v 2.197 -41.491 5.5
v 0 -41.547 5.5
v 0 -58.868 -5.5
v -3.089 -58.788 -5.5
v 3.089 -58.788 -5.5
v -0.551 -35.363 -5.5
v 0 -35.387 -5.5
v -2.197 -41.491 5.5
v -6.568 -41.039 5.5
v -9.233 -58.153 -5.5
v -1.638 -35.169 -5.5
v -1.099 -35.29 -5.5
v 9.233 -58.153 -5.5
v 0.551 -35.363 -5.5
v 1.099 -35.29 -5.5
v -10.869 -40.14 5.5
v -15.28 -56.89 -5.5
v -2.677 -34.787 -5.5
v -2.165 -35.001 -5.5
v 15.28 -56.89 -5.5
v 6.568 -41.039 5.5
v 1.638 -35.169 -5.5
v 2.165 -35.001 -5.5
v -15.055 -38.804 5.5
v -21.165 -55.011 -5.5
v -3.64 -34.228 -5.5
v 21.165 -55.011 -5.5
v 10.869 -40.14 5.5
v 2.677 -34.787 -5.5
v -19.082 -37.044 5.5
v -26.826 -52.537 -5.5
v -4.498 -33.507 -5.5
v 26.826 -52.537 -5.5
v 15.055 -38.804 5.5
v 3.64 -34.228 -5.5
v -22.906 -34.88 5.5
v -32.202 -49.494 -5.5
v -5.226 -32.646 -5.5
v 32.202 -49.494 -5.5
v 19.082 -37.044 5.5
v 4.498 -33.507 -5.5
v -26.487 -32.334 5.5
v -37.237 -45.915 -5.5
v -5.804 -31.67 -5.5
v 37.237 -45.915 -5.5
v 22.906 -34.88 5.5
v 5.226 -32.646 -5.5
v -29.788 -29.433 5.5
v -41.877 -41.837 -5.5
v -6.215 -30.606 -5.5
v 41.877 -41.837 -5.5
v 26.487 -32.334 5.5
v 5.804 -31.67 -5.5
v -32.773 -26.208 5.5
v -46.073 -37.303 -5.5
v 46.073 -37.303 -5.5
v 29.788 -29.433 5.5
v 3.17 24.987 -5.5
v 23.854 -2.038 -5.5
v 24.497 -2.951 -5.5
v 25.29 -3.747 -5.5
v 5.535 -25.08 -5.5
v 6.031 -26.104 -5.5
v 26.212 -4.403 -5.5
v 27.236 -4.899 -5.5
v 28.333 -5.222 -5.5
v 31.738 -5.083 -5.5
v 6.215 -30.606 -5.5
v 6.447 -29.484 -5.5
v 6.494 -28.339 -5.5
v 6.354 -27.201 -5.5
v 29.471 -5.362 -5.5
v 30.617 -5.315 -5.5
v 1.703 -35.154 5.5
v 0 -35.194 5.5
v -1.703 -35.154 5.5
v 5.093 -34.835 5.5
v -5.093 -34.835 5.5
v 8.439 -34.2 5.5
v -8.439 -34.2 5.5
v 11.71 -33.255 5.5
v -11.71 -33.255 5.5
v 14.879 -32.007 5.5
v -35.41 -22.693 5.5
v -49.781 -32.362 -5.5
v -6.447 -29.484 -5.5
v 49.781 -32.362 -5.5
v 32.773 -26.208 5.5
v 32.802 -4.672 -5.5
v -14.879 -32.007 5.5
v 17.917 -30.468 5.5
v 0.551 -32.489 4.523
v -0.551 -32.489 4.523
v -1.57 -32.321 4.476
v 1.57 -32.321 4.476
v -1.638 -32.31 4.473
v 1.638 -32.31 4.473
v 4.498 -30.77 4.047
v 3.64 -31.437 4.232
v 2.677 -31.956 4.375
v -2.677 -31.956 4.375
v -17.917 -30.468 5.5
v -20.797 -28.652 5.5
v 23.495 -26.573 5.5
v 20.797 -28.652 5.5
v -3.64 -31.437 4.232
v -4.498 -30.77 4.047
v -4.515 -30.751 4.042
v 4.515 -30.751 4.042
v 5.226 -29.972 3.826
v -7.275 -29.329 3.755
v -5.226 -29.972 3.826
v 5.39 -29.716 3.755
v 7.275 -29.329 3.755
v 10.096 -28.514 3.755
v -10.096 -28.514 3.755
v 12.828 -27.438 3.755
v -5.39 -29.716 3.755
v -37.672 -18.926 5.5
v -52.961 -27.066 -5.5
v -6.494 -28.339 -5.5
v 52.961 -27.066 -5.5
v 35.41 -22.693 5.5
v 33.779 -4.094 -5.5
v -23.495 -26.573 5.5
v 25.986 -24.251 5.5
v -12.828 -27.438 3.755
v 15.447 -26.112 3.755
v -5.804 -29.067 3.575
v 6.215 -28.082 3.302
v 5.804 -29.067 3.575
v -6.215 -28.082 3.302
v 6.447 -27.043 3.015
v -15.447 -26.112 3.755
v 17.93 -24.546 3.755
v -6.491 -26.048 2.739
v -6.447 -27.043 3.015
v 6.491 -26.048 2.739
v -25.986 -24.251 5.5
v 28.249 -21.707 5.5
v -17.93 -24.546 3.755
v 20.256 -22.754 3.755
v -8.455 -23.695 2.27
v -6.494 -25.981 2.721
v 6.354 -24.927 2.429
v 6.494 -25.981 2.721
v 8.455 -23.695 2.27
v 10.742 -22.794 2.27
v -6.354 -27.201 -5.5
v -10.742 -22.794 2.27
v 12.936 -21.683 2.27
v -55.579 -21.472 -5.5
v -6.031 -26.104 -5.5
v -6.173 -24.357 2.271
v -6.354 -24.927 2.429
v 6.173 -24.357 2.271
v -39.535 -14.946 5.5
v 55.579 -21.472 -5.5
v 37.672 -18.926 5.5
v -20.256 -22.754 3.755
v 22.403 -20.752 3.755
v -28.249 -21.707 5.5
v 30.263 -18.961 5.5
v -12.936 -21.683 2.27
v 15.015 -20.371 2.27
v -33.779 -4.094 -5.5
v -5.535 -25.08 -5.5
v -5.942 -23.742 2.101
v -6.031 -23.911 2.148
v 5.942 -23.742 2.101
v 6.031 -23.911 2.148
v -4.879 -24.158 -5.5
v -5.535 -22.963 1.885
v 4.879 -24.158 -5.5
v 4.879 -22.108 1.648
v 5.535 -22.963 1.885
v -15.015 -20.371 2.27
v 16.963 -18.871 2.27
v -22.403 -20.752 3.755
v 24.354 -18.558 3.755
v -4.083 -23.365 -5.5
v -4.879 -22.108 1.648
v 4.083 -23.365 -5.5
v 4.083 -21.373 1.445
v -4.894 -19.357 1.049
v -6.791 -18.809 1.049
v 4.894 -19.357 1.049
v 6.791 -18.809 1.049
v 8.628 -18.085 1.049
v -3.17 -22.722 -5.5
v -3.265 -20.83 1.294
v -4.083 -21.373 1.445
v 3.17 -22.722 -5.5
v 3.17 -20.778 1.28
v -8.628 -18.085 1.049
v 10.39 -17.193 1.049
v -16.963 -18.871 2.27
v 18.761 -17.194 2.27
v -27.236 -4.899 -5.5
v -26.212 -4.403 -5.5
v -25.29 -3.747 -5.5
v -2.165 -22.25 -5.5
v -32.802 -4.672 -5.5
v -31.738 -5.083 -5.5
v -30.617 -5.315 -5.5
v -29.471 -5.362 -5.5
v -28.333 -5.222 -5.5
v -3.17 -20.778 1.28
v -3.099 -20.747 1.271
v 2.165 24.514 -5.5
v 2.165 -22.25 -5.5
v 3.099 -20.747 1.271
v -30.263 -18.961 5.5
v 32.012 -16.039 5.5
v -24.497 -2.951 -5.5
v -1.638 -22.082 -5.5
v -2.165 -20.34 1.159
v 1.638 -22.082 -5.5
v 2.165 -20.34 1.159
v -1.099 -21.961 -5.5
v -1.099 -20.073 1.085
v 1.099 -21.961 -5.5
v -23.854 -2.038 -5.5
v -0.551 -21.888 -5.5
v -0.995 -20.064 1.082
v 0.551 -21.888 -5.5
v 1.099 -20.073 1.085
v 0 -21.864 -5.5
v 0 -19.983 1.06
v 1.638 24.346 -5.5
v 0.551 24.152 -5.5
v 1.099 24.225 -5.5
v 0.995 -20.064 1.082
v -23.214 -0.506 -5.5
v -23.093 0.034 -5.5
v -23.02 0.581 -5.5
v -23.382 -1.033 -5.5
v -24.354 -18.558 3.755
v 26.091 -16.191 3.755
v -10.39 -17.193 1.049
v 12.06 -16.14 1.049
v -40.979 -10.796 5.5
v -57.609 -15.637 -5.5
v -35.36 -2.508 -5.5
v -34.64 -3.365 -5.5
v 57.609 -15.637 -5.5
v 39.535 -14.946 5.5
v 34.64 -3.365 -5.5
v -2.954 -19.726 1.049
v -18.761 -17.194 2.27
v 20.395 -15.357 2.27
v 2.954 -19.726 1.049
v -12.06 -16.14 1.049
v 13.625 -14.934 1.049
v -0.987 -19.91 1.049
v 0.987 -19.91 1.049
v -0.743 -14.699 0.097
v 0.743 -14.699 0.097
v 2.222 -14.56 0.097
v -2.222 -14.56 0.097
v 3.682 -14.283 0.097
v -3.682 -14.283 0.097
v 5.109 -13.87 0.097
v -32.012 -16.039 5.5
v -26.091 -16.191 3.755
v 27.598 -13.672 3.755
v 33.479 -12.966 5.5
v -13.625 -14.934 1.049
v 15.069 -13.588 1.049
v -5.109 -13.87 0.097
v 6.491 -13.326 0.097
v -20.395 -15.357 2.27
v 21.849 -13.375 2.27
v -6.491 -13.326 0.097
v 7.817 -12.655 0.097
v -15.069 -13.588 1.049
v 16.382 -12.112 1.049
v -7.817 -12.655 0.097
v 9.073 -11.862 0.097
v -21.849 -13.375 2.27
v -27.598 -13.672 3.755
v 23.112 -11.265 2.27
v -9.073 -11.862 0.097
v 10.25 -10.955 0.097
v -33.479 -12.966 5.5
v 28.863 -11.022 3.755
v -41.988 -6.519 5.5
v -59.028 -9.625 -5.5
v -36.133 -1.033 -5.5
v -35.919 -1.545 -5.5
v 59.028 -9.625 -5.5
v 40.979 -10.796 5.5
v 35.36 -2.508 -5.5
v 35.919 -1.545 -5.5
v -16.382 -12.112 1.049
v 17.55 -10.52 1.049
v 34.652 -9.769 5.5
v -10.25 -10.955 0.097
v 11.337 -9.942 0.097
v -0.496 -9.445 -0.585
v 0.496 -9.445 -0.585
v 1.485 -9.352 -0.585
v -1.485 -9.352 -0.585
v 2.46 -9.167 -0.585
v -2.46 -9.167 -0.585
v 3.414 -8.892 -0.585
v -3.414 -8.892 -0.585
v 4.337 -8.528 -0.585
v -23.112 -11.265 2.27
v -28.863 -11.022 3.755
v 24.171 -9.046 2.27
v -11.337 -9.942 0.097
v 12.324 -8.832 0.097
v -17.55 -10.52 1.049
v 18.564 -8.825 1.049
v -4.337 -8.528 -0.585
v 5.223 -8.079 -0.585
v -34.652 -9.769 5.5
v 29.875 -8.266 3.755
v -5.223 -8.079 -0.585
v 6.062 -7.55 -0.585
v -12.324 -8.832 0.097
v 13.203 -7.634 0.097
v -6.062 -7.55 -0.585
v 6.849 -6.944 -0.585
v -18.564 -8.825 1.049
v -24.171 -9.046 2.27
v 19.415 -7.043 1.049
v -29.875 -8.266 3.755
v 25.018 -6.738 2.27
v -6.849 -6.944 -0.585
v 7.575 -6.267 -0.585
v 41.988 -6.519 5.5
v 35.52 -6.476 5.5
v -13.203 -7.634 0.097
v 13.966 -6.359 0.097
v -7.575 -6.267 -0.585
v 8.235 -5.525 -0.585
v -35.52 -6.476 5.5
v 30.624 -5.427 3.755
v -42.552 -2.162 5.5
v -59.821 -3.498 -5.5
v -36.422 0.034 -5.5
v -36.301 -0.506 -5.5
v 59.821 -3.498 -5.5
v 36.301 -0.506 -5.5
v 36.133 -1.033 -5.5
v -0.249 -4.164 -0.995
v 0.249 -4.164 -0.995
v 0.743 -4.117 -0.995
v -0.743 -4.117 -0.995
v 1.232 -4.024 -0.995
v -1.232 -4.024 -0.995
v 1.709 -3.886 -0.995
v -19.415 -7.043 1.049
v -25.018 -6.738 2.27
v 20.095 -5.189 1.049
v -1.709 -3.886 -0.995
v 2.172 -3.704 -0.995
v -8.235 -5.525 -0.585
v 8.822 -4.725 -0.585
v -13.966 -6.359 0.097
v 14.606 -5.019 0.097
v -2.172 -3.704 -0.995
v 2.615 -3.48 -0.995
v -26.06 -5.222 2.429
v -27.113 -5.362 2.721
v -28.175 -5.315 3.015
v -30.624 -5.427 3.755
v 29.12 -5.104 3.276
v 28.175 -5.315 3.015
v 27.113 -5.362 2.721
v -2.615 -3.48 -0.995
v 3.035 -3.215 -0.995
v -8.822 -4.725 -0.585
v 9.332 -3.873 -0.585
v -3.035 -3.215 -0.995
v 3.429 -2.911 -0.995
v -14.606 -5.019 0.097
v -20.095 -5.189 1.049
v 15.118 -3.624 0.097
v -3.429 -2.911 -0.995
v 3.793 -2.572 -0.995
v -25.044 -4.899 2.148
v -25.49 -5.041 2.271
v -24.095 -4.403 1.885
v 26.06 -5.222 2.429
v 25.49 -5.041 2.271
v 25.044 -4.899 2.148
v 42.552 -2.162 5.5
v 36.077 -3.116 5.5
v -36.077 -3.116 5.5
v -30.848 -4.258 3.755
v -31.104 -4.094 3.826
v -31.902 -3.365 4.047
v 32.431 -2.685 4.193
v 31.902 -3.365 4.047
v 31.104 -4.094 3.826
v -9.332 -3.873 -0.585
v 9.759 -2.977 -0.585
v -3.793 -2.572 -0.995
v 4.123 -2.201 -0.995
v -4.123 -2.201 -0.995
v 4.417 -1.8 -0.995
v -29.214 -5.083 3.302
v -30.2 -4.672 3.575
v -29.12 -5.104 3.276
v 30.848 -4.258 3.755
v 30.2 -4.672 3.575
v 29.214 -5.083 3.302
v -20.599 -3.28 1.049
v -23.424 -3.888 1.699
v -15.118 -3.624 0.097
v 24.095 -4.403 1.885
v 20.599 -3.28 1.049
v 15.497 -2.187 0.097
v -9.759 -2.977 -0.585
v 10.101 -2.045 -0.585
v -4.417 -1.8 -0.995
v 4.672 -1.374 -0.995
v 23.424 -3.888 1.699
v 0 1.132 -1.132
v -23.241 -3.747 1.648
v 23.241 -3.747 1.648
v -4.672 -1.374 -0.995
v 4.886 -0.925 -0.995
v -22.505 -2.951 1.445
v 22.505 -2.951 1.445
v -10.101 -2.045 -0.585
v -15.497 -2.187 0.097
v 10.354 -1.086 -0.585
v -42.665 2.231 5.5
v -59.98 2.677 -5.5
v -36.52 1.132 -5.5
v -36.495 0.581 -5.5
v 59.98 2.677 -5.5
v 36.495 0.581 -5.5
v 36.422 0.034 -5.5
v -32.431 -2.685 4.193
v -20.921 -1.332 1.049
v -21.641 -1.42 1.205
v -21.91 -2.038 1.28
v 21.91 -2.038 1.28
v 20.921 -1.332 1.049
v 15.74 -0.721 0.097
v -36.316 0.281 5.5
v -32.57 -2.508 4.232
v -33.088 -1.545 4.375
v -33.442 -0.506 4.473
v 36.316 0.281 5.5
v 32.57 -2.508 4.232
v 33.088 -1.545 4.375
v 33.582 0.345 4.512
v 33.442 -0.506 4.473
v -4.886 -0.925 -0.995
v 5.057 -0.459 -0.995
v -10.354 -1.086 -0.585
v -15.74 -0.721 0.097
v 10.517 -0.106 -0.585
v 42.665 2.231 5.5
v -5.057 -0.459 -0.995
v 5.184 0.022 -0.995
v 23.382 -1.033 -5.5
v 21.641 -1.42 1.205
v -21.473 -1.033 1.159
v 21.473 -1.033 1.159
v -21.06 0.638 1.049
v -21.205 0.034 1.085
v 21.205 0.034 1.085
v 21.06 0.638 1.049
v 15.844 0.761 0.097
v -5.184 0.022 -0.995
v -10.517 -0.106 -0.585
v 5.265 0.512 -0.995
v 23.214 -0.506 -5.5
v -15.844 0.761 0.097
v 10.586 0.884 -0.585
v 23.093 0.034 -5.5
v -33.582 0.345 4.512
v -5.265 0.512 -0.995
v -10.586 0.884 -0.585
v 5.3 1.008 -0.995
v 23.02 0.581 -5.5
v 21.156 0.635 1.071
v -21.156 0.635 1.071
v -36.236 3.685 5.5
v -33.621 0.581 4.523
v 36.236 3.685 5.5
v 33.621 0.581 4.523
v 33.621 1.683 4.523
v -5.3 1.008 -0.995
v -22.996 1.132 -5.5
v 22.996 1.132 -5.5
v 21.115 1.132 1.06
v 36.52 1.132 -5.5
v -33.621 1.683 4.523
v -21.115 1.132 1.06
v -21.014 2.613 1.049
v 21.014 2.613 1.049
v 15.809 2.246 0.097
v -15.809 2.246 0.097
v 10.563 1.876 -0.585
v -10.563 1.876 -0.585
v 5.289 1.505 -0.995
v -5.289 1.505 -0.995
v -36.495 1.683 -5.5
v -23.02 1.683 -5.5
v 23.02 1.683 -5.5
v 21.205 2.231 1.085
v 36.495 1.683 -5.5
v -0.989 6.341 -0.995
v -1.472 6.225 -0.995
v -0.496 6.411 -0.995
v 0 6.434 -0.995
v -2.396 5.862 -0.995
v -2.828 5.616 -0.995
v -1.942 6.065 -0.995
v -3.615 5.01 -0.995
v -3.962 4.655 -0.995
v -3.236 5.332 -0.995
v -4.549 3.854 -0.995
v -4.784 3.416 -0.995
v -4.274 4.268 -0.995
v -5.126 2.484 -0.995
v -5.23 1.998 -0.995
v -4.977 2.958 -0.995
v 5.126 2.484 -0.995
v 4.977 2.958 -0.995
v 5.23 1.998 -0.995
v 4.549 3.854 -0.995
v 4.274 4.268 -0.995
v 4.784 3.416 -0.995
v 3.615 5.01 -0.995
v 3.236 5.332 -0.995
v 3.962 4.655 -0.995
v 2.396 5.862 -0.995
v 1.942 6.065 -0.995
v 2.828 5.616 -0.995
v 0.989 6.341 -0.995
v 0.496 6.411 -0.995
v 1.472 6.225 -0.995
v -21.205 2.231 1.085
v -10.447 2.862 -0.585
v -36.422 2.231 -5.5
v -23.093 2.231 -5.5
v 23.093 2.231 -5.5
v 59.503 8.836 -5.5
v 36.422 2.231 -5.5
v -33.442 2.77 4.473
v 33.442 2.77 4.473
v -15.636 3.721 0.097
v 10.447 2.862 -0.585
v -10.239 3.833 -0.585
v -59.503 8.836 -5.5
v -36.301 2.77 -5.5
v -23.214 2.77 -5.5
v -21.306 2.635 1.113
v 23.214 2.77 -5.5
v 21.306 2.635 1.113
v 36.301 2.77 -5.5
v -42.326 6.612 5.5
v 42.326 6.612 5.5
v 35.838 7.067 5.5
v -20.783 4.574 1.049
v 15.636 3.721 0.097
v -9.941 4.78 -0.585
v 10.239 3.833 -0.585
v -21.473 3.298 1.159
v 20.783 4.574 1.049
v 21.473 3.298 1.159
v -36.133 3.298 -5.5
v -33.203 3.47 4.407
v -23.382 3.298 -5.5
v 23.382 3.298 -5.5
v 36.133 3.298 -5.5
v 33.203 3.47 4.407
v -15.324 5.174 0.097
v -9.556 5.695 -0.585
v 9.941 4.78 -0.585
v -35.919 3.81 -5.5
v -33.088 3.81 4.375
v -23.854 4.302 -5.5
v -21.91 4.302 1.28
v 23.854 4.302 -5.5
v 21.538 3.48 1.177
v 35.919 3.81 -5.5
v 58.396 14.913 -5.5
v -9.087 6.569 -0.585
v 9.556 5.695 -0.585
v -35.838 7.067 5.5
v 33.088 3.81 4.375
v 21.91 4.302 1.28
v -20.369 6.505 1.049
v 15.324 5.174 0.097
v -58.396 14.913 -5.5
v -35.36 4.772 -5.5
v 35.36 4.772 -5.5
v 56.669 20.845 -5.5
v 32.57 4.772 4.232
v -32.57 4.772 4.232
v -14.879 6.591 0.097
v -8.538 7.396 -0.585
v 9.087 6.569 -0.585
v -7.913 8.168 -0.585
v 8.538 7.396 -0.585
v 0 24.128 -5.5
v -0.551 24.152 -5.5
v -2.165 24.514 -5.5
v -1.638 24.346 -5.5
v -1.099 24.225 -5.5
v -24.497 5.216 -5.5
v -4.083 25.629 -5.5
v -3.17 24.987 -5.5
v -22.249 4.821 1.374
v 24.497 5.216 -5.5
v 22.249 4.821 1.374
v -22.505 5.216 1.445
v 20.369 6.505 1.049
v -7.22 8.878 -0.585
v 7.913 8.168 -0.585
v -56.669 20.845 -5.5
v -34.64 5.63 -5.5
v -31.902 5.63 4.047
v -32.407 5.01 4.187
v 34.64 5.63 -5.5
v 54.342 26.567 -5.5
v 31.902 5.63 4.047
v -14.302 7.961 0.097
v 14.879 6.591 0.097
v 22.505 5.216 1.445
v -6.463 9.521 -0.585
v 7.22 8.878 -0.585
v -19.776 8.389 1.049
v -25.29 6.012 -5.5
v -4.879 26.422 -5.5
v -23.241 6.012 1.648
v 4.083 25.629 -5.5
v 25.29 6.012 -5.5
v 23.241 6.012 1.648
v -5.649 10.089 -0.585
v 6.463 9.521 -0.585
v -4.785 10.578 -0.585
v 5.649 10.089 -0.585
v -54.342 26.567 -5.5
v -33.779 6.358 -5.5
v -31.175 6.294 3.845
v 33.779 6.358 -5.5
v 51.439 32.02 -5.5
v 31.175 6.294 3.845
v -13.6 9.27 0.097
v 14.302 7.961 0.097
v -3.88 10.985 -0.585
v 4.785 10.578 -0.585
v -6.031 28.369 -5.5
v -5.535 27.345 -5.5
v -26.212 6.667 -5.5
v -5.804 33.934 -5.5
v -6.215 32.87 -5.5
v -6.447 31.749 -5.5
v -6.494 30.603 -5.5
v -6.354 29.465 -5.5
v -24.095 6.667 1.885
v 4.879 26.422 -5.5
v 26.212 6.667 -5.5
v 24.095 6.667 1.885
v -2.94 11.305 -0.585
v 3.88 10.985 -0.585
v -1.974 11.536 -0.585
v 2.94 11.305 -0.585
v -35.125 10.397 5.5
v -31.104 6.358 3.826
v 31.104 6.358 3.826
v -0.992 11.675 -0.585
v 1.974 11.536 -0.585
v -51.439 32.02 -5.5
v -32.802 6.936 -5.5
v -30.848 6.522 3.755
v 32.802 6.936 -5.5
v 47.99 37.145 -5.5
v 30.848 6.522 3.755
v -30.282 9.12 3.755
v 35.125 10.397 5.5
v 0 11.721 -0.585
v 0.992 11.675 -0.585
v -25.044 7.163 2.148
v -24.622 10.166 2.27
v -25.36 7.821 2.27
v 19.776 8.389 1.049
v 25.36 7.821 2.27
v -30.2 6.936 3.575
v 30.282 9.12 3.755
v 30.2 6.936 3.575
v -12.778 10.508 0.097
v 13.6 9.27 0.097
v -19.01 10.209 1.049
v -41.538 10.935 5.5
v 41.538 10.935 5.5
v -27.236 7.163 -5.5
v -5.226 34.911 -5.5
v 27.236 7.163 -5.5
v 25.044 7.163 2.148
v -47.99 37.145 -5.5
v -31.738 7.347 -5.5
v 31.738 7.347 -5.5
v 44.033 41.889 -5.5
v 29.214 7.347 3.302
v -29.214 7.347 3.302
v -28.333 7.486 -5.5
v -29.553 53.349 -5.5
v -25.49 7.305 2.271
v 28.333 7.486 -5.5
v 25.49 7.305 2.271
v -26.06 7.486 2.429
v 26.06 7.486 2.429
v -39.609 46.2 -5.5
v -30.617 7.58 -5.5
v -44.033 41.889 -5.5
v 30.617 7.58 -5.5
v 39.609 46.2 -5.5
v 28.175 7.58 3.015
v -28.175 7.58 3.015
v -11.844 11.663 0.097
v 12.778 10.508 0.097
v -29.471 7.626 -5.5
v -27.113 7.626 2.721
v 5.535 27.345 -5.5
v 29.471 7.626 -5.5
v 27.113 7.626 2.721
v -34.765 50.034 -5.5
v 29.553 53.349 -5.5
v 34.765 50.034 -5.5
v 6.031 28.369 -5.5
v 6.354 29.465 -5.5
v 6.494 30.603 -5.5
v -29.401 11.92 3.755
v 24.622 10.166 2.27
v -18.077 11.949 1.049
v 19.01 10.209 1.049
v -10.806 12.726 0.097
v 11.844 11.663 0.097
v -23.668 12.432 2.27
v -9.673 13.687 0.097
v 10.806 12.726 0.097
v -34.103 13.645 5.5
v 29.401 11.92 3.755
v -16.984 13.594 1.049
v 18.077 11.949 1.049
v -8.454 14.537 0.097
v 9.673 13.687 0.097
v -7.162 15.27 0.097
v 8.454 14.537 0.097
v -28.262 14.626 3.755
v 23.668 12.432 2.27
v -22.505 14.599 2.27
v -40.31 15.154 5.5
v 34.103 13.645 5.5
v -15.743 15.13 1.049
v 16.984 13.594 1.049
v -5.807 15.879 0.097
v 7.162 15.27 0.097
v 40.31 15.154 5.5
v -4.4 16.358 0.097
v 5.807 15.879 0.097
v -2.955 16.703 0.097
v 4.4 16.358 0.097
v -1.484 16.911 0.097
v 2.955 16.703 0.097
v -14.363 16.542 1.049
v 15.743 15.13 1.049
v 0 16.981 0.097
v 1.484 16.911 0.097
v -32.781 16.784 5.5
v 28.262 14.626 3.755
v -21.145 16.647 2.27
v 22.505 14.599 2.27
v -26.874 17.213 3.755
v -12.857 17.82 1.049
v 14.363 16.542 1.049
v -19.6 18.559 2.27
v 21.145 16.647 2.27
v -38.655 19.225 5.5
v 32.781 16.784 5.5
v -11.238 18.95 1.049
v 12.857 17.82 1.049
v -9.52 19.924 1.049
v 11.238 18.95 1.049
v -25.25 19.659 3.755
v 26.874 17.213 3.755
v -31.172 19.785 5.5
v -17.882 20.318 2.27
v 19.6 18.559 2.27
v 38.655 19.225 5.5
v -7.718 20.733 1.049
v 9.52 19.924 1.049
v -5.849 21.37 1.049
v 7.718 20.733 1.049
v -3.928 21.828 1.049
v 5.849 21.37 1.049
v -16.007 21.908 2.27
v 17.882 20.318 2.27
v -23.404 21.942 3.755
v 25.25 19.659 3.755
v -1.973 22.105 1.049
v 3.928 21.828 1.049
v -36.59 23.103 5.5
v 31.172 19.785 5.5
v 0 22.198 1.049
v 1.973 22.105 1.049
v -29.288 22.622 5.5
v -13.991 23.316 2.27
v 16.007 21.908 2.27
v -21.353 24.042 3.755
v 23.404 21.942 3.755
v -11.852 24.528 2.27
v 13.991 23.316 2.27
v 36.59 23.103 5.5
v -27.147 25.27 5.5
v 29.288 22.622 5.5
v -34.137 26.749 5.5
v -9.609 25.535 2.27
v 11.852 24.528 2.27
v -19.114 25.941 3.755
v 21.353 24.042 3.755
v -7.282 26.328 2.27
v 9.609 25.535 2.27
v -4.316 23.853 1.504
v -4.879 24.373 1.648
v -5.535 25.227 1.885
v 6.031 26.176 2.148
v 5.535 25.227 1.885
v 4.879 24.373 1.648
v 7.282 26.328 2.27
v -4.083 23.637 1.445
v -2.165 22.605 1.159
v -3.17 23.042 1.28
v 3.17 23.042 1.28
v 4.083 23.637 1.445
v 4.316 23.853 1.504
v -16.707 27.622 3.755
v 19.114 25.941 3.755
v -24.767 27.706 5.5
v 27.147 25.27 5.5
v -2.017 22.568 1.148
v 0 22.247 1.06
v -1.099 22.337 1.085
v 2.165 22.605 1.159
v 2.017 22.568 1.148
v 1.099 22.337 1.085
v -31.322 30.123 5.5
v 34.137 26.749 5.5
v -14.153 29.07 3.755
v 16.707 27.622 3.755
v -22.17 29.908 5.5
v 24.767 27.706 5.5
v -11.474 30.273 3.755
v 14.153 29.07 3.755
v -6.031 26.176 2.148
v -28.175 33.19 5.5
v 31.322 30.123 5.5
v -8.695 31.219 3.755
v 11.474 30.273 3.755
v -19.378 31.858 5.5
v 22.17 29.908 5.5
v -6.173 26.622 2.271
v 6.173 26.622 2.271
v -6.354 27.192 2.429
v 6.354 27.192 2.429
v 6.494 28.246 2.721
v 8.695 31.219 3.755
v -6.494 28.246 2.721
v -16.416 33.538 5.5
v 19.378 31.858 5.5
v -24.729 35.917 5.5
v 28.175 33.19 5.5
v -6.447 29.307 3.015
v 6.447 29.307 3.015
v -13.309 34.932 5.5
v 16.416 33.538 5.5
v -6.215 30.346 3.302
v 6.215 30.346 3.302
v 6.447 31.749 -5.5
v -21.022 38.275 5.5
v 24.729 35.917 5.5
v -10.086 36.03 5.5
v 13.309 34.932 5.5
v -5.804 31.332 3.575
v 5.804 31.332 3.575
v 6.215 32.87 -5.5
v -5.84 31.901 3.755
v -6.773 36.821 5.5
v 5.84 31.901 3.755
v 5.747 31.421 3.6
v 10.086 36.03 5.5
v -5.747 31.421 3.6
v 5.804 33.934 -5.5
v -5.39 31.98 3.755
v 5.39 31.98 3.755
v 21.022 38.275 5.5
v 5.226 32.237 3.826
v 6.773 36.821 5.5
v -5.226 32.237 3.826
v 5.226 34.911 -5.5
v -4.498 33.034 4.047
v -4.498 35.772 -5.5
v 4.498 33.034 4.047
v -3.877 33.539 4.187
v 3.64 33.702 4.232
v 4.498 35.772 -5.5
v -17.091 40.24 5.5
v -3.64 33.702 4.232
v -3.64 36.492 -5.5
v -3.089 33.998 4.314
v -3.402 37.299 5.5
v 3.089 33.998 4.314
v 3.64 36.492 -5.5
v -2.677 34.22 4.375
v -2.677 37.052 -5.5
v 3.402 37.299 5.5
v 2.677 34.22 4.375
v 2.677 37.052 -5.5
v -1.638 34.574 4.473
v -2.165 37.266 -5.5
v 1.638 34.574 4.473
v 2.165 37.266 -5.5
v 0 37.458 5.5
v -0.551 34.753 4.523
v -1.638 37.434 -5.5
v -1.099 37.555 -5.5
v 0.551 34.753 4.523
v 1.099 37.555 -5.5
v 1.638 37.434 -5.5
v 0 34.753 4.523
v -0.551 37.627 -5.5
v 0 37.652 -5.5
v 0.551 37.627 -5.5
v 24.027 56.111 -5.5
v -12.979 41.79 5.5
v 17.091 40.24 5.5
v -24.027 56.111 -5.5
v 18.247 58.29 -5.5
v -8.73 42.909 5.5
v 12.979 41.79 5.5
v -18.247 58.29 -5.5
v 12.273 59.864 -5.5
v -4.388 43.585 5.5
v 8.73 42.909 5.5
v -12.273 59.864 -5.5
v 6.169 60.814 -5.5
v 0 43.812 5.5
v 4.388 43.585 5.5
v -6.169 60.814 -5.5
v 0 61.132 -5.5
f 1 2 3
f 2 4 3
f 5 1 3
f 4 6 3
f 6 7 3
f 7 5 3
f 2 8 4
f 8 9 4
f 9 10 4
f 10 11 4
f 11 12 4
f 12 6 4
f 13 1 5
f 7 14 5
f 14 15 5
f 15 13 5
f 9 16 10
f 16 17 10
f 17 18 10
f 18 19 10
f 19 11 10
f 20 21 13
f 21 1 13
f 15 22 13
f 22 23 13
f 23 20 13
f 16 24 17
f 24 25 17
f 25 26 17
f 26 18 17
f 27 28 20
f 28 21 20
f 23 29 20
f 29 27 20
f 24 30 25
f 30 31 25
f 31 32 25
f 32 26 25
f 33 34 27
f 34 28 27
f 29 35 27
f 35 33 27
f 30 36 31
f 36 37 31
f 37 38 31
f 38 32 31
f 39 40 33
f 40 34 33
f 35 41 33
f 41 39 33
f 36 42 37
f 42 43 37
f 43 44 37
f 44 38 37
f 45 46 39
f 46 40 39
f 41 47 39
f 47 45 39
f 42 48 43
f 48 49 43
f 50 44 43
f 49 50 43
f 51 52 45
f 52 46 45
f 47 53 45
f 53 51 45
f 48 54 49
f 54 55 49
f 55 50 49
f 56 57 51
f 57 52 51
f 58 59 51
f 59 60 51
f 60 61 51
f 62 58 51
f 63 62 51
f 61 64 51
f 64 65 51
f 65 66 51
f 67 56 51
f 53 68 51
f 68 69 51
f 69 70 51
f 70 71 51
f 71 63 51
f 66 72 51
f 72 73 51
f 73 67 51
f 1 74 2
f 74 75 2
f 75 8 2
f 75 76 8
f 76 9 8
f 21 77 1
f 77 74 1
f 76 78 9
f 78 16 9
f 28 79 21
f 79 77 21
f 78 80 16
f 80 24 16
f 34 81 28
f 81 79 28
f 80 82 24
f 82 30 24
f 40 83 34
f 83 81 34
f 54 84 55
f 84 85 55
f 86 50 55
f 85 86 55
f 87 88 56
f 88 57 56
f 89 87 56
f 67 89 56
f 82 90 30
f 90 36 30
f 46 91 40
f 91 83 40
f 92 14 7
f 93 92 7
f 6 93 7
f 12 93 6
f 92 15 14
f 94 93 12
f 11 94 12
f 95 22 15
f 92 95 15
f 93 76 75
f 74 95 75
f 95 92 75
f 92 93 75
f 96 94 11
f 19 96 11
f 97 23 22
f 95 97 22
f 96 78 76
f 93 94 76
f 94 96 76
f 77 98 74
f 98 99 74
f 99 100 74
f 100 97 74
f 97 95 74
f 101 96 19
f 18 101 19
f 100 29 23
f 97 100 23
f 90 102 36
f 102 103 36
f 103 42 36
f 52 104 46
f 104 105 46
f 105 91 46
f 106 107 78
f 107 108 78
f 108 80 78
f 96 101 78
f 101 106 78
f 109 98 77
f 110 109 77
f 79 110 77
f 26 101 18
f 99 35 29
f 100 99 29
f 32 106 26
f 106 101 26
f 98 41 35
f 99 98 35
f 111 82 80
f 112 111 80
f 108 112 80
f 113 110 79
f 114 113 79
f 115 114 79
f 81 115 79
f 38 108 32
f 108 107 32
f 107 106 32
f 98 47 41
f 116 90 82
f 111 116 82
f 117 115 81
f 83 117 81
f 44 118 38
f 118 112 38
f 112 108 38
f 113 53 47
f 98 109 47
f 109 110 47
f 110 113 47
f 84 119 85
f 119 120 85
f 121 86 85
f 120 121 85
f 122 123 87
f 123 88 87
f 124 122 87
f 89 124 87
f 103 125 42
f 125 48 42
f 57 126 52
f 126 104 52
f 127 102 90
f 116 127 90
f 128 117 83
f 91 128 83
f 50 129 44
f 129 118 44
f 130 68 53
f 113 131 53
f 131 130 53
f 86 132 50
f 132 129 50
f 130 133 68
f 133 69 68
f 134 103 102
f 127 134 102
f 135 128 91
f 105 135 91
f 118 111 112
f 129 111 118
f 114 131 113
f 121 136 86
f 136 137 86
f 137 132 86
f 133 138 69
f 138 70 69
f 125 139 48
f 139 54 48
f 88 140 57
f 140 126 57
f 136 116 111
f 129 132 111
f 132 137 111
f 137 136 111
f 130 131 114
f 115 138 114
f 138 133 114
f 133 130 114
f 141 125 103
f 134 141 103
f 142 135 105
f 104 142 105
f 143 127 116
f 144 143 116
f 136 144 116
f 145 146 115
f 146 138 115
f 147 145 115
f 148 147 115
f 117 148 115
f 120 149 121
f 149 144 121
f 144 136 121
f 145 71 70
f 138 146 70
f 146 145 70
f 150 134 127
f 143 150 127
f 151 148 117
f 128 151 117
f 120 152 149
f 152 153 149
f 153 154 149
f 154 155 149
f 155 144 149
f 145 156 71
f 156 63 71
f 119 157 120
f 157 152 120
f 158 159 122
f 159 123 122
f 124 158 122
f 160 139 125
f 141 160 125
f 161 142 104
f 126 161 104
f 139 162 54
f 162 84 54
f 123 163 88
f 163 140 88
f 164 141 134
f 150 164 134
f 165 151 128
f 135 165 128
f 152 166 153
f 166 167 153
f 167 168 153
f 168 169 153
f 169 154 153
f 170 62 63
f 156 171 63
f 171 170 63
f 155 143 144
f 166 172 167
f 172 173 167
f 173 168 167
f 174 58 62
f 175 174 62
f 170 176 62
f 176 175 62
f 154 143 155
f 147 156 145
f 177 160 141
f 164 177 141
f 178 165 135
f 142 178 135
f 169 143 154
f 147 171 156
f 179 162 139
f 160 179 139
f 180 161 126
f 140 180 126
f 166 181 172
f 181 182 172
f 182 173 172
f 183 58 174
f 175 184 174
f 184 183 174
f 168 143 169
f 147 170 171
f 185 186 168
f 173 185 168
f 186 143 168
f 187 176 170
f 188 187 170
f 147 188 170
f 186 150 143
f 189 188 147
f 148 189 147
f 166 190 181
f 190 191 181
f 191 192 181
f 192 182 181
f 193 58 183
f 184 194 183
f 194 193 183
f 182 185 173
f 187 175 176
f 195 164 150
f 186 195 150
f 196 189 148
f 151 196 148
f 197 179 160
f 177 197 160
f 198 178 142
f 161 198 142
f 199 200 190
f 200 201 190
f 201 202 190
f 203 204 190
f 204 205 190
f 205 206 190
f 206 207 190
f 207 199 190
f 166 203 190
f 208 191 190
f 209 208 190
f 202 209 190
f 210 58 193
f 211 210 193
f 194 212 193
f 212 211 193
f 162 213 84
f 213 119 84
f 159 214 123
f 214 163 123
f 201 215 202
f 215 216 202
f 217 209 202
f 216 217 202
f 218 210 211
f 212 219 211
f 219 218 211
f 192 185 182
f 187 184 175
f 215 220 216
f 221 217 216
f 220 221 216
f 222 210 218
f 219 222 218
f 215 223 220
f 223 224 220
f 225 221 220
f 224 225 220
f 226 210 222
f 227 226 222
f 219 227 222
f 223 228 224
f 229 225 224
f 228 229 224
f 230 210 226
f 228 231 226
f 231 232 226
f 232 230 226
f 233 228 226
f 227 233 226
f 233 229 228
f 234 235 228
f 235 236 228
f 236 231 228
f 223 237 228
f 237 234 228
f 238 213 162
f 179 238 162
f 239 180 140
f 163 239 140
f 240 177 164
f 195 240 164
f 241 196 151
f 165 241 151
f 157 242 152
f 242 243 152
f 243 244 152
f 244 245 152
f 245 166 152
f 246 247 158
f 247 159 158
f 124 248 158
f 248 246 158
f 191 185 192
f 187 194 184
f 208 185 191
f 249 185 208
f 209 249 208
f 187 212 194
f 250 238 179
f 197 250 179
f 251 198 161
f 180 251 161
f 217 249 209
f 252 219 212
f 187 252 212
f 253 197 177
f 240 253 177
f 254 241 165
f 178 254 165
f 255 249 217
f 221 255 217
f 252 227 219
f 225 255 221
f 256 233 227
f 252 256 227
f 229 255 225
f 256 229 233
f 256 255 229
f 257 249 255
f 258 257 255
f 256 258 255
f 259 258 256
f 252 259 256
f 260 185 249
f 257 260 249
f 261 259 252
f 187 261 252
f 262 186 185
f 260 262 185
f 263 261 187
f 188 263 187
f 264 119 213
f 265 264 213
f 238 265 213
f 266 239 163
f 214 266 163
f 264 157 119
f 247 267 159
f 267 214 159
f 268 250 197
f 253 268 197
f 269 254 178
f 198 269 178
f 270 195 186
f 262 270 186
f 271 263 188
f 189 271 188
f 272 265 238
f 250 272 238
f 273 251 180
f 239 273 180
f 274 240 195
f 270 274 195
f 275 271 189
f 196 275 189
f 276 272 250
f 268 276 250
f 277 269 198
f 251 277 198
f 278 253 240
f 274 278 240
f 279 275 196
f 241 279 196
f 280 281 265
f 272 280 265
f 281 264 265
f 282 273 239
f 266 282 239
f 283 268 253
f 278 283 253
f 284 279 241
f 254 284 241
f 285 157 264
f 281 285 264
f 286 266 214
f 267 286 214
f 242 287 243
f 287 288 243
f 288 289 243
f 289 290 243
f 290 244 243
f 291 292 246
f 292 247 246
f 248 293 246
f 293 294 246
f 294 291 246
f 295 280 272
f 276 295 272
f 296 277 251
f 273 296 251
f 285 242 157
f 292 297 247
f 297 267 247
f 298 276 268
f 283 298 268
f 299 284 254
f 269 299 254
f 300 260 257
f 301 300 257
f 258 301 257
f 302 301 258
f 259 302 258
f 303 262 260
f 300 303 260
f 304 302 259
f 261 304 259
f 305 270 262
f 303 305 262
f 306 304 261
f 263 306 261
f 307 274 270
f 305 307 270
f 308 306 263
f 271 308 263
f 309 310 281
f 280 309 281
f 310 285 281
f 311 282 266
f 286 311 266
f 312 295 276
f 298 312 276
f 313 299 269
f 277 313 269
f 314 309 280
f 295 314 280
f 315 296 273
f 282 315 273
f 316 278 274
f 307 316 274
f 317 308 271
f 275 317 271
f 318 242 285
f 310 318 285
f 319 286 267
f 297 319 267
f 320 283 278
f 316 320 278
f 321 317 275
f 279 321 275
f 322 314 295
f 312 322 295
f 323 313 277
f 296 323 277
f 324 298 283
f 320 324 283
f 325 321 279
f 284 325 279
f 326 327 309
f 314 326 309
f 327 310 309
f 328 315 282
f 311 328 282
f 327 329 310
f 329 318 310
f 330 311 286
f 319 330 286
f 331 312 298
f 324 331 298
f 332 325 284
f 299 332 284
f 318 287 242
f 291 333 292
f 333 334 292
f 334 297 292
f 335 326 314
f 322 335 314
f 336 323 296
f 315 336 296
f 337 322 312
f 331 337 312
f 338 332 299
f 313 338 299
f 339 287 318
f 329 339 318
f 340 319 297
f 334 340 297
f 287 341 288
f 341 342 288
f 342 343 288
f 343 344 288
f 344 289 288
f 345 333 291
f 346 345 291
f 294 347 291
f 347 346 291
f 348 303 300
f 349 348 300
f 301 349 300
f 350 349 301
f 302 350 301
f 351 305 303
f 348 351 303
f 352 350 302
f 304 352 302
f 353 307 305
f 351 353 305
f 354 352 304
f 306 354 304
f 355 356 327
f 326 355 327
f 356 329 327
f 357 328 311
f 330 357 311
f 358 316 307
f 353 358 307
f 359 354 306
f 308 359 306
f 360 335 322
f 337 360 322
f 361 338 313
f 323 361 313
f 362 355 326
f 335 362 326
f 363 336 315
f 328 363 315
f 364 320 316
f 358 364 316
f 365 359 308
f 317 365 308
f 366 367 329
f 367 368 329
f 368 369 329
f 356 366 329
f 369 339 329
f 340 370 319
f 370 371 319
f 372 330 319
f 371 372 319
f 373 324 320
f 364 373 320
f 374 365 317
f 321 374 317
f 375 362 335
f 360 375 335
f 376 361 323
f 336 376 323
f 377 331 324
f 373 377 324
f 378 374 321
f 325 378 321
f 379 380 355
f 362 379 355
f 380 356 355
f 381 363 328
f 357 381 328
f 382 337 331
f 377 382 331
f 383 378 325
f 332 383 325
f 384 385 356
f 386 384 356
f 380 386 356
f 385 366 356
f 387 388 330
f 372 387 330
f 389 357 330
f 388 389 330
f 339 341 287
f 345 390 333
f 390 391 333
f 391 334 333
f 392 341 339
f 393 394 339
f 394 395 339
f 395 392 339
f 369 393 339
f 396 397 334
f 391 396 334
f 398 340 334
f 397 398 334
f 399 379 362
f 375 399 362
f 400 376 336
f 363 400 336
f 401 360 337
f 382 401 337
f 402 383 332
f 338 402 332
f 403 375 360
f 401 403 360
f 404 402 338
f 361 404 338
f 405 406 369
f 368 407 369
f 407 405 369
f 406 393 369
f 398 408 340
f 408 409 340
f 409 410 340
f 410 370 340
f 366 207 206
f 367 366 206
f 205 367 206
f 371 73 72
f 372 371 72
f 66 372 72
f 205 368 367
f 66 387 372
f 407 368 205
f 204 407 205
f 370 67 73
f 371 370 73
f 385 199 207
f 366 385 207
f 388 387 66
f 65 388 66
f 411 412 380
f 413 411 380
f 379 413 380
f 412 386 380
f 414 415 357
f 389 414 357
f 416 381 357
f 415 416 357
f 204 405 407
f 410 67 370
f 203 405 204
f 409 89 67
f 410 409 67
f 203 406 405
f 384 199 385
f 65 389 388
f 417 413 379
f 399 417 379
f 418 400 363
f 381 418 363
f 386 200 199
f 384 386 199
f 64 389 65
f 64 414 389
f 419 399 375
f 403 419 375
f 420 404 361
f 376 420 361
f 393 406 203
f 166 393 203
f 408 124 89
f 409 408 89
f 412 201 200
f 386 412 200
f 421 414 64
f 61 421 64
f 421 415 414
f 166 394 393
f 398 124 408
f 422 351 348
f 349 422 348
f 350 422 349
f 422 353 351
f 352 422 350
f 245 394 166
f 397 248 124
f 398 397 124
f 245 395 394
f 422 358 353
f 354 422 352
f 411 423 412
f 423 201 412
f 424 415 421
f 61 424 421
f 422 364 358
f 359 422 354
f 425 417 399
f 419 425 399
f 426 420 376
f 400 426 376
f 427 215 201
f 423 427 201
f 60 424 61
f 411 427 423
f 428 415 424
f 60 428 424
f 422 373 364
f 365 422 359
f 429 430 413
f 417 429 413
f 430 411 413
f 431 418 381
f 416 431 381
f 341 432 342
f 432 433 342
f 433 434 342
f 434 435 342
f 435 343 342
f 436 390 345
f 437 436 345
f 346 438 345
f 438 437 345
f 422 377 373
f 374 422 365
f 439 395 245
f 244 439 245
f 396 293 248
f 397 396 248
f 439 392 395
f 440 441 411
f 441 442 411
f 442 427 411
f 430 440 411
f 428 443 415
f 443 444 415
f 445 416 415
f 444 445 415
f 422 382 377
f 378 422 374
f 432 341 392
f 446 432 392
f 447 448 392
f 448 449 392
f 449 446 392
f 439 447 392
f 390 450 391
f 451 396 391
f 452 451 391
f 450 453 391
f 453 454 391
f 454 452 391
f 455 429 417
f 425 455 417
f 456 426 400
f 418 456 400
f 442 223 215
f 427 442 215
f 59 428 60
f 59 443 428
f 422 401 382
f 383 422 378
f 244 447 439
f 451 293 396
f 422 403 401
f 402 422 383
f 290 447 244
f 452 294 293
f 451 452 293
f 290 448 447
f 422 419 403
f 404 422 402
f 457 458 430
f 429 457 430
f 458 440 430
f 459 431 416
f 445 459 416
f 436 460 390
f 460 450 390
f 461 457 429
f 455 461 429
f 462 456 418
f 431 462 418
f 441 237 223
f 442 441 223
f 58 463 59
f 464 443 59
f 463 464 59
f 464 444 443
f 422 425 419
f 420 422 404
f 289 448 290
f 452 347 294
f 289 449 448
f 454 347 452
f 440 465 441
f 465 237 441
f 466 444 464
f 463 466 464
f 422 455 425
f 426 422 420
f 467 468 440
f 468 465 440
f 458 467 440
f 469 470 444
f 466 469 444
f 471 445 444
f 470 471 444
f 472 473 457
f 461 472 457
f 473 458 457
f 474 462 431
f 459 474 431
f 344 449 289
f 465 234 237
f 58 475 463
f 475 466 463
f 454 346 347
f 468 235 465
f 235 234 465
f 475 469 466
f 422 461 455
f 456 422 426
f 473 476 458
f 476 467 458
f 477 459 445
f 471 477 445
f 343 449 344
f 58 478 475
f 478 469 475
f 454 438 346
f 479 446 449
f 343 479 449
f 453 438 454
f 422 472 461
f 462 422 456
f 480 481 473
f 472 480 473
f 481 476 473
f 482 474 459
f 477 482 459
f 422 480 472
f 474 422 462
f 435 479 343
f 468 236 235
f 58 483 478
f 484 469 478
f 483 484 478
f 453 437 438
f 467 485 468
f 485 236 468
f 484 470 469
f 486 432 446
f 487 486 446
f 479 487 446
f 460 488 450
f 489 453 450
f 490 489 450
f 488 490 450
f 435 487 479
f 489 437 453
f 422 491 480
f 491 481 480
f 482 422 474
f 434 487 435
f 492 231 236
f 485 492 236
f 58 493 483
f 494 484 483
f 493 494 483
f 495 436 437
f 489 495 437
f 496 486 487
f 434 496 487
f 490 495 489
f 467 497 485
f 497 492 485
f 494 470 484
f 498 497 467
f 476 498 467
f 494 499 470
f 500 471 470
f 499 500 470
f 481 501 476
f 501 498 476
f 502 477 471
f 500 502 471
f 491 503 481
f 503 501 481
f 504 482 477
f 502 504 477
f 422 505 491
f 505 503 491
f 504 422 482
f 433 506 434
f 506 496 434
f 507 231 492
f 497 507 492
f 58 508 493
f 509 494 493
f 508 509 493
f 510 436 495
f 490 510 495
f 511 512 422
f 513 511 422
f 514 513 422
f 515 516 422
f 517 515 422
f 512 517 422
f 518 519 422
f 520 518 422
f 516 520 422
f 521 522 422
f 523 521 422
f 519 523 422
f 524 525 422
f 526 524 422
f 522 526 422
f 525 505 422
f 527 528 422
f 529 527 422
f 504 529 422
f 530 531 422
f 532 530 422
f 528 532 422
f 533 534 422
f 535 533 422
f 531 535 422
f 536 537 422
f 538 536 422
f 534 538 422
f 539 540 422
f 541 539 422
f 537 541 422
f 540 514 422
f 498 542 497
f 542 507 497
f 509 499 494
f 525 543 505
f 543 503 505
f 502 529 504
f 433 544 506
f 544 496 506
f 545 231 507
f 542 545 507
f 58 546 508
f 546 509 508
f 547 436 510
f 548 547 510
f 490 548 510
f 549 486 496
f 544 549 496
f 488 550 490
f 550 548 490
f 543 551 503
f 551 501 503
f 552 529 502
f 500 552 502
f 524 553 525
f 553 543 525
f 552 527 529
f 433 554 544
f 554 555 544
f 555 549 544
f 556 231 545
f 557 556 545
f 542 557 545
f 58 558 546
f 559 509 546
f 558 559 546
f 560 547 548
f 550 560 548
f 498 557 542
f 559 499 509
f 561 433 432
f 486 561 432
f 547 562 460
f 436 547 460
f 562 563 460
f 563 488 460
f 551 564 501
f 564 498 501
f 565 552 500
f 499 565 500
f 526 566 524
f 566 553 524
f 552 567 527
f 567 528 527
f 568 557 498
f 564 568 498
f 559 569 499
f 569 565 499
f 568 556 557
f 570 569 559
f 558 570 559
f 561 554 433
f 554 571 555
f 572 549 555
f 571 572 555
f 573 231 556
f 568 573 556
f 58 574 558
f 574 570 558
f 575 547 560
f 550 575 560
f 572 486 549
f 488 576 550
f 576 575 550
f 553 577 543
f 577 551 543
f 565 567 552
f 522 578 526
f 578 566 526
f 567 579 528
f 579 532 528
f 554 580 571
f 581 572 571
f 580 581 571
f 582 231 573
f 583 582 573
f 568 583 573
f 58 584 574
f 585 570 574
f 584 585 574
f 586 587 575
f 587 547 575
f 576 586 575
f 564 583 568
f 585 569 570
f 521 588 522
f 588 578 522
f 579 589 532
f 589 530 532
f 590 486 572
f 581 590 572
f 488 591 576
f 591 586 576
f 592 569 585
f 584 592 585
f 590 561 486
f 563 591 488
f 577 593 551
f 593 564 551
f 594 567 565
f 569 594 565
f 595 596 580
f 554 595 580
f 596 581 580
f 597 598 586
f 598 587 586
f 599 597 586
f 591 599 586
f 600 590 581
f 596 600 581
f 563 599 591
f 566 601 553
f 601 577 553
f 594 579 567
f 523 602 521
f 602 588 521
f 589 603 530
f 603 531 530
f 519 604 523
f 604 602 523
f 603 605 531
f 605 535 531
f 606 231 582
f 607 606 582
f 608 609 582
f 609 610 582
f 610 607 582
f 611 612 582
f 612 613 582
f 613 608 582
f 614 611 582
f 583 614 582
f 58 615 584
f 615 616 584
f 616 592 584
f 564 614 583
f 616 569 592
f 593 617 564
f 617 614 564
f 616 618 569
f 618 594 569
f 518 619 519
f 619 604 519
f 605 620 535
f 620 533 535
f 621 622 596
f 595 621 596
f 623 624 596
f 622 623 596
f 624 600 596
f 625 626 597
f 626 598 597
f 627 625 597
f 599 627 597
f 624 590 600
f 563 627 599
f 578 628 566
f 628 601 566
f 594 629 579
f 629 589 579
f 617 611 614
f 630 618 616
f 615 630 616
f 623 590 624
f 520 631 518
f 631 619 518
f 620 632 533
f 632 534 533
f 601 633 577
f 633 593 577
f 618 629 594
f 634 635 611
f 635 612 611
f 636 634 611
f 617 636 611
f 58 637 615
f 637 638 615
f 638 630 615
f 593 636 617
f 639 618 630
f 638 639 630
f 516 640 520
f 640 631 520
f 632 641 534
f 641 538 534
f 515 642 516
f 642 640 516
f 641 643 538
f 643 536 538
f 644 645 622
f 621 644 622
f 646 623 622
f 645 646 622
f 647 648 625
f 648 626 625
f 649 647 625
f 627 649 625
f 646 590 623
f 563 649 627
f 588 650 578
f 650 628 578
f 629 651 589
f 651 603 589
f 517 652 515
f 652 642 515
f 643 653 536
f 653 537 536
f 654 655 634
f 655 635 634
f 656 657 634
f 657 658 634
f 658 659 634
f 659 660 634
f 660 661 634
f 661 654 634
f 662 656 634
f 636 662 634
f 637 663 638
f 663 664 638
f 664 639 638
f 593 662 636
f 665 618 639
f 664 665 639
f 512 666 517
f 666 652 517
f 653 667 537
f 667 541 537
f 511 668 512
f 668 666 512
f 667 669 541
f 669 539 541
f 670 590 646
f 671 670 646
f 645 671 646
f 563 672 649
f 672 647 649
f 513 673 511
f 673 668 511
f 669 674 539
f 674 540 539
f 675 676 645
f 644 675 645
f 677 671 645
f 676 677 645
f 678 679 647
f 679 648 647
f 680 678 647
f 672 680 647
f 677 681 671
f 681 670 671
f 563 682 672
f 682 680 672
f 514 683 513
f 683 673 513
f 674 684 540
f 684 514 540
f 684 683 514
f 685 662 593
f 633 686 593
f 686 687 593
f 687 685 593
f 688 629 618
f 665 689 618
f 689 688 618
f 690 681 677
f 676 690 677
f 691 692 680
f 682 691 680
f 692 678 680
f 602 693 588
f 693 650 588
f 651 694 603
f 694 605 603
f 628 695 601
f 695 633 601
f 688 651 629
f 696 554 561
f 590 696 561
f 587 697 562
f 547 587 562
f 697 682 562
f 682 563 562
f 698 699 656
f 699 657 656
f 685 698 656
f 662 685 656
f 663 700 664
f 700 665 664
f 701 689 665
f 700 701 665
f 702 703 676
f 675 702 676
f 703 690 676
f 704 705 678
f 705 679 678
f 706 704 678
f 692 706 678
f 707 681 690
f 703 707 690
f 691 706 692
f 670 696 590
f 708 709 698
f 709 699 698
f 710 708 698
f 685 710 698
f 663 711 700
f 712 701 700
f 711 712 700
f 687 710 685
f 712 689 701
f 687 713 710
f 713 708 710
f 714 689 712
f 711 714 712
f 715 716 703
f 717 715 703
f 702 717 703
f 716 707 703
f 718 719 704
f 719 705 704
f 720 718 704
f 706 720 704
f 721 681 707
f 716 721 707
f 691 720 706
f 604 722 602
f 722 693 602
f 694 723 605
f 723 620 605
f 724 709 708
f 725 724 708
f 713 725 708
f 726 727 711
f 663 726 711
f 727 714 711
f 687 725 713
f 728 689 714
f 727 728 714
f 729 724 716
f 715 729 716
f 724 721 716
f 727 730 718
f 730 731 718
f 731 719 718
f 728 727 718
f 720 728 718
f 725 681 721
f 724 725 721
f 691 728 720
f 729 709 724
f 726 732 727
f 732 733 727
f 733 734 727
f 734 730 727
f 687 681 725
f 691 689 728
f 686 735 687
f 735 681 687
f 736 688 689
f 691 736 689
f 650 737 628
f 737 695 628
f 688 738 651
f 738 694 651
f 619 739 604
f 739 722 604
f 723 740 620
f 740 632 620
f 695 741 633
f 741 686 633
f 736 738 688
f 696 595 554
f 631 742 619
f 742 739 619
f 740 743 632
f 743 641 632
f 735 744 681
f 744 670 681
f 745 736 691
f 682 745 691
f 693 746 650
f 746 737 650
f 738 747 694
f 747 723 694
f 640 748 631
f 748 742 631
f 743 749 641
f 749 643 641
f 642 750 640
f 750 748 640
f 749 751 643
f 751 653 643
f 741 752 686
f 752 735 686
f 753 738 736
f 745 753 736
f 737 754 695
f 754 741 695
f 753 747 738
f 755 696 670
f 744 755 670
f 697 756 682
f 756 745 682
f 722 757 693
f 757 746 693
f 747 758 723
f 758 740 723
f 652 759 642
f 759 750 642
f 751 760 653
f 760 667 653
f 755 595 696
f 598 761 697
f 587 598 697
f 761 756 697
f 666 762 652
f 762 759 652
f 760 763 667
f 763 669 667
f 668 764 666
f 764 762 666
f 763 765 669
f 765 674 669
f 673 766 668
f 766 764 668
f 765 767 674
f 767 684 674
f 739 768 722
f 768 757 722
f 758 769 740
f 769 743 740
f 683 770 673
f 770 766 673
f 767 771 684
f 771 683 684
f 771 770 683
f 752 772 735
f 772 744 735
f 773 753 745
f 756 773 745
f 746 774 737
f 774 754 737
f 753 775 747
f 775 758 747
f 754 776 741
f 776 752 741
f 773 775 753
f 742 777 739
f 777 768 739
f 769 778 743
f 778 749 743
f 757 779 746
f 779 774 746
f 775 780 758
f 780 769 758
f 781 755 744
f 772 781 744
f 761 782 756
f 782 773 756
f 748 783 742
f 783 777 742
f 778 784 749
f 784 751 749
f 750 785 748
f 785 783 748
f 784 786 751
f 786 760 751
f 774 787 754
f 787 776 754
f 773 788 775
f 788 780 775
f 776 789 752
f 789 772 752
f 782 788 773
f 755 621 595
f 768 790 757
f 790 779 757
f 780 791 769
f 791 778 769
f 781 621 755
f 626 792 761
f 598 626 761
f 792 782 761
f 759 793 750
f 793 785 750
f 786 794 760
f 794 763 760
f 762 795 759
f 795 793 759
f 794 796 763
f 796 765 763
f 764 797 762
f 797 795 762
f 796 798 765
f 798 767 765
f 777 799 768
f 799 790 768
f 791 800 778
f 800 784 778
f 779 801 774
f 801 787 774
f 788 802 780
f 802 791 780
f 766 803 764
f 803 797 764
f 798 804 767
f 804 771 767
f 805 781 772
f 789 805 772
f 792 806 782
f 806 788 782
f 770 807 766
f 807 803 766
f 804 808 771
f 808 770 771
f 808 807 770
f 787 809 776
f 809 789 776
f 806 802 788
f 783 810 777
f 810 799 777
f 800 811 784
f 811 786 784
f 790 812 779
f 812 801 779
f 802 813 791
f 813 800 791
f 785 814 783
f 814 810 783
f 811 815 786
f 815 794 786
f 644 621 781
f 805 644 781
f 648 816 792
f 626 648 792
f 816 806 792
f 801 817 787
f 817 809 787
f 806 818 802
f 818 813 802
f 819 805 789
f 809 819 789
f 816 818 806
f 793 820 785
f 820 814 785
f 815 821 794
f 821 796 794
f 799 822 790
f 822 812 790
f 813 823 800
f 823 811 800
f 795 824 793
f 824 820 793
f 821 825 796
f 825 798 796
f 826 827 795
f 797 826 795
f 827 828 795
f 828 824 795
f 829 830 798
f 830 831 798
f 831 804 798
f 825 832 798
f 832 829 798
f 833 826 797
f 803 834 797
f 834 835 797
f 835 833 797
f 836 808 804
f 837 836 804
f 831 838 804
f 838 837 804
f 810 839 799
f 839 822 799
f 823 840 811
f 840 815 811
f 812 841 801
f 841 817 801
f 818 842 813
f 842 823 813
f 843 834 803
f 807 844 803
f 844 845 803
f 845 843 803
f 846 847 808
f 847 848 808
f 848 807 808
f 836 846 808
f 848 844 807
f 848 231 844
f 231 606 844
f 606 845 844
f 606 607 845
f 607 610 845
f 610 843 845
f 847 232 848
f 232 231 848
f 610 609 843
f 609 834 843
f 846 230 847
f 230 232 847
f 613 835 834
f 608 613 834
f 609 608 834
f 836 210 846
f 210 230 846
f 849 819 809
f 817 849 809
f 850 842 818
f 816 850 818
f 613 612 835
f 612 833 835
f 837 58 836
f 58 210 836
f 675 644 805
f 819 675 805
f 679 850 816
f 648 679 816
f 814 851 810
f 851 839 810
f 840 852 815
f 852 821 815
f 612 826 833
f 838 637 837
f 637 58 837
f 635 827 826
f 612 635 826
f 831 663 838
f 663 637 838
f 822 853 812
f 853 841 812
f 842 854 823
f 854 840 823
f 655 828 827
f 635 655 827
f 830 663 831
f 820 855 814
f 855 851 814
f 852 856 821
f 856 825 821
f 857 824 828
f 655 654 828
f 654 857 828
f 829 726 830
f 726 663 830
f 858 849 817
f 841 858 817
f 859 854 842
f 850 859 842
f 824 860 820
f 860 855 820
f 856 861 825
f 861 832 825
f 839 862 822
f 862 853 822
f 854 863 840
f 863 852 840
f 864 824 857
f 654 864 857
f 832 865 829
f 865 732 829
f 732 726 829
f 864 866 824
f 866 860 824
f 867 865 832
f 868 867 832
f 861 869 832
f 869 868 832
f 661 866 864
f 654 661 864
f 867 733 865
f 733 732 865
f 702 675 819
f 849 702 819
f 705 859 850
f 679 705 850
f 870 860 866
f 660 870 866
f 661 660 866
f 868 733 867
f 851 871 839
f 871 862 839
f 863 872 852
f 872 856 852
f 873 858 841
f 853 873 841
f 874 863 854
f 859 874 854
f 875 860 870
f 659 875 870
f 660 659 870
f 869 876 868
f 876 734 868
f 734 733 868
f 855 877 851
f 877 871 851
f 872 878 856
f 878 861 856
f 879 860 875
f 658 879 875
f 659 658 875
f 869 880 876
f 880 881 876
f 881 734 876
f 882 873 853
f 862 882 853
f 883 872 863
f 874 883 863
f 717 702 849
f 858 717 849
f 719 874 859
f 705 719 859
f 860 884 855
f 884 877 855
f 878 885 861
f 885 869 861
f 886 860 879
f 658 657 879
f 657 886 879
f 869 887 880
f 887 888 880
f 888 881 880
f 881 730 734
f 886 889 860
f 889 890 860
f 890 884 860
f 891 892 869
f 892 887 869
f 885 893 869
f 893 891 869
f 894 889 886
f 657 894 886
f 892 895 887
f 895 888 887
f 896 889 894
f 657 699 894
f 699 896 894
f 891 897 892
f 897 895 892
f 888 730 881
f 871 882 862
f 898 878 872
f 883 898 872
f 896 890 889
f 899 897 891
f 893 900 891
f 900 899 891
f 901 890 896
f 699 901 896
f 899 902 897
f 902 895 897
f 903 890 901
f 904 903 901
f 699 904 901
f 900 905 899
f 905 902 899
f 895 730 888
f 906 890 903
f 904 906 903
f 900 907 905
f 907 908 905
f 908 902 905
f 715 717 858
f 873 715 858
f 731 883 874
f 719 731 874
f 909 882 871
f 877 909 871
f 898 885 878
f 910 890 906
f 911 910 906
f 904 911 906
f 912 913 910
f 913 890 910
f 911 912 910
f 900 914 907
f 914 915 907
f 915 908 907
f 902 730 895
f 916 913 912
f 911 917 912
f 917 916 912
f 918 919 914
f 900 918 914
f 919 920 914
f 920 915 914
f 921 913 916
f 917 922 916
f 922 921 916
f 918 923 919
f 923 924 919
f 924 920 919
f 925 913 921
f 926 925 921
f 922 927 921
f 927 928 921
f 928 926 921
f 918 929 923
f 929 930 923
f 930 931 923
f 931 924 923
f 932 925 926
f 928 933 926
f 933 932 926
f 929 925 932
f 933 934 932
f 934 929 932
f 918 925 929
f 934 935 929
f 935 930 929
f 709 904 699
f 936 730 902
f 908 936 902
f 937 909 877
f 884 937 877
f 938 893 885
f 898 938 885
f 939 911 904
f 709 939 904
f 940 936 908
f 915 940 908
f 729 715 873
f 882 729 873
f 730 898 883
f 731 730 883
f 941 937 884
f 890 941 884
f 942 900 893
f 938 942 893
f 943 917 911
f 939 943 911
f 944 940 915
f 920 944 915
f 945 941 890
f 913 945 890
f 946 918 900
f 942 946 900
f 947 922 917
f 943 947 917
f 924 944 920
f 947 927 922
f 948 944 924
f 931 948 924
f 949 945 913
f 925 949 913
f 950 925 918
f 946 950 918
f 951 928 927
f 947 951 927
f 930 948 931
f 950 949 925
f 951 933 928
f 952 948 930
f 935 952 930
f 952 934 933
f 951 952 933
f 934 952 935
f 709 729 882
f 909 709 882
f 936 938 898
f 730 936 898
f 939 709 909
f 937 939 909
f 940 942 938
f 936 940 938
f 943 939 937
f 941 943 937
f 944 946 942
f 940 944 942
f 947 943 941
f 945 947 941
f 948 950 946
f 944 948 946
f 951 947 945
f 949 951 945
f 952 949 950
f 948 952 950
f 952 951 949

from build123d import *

# Parameters (mm, degrees)
PATTERN_CIRCULAR_1_COUNT = 4
MOVE_BODY_1_ANGLE        = 90


with BuildPart() as part:
    # 草图1 → 旋转1 (revolve)
    with BuildSketch(Plane(origin=(0, 0, 0), x_dir=(0, 0, -1), z_dir=(1, 0, 0)), mode=Mode.PRIVATE) as revolve_1_sk:
        with BuildLine():
            Line((0, 0), (0, -4.367835819))
            Line((0, -4.367835819), (60, -4.367835819))
            Line((60, -4.367835819), (42.679491924, 6.632164181))
            Line((42.679491924, 6.632164181), (36.32612495, 6.632164181))
            ThreePointArc((36.32612495, 6.632164181), (18.463294368, 1.671632263), (0, 0))
        make_face()
    revolve(revolve_1_sk.sketch.rotate(Axis((0, 23.869545483, 0), (0, -1, 0)), 180), axis=Axis((0, 23.869545483, 0), (0, -1, 0)))

    # 草图2 → 切除-旋转1 (revolve, cut)
    with BuildSketch(Plane.XY, mode=Mode.PRIVATE) as cut_revolve_1_sk:
        Polygon((23.11658969, 18.792484499), (29.364790714, 20.584127312), (39.564082896, -14.98503156), (33.315881872, -16.776674373), align=None)
    cut_revolve_1 = revolve(cut_revolve_1_sk.sketch.rotate(Axis((0, 99.409613277, 0), (0.2756373558169999, -0.9612616959383187, 0)), 180), axis=Axis((0, 99.409613277, 0), (0.2756373558169999, -0.9612616959383187, 0)), mode=Mode.SUBTRACT)

    # 阵列(圆周)1: 切除-旋转1 ×4 about axis
    pattern_circular_1_axis = Axis((0, 0, 0), (0, 1, 0))
    for i in range(1, PATTERN_CIRCULAR_1_COUNT):
        add(cut_revolve_1.rotate(pattern_circular_1_axis, i * 360 / PATTERN_CIRCULAR_1_COUNT), mode=Mode.SUBTRACT)


with BuildPart() as part_1:
    # Move Body 1: moved
    add(part.part.rotate(Axis((0, 1.132164181, 0), (1, 0, 0)), MOVE_BODY_1_ANGLE))


solid = part_1.part
